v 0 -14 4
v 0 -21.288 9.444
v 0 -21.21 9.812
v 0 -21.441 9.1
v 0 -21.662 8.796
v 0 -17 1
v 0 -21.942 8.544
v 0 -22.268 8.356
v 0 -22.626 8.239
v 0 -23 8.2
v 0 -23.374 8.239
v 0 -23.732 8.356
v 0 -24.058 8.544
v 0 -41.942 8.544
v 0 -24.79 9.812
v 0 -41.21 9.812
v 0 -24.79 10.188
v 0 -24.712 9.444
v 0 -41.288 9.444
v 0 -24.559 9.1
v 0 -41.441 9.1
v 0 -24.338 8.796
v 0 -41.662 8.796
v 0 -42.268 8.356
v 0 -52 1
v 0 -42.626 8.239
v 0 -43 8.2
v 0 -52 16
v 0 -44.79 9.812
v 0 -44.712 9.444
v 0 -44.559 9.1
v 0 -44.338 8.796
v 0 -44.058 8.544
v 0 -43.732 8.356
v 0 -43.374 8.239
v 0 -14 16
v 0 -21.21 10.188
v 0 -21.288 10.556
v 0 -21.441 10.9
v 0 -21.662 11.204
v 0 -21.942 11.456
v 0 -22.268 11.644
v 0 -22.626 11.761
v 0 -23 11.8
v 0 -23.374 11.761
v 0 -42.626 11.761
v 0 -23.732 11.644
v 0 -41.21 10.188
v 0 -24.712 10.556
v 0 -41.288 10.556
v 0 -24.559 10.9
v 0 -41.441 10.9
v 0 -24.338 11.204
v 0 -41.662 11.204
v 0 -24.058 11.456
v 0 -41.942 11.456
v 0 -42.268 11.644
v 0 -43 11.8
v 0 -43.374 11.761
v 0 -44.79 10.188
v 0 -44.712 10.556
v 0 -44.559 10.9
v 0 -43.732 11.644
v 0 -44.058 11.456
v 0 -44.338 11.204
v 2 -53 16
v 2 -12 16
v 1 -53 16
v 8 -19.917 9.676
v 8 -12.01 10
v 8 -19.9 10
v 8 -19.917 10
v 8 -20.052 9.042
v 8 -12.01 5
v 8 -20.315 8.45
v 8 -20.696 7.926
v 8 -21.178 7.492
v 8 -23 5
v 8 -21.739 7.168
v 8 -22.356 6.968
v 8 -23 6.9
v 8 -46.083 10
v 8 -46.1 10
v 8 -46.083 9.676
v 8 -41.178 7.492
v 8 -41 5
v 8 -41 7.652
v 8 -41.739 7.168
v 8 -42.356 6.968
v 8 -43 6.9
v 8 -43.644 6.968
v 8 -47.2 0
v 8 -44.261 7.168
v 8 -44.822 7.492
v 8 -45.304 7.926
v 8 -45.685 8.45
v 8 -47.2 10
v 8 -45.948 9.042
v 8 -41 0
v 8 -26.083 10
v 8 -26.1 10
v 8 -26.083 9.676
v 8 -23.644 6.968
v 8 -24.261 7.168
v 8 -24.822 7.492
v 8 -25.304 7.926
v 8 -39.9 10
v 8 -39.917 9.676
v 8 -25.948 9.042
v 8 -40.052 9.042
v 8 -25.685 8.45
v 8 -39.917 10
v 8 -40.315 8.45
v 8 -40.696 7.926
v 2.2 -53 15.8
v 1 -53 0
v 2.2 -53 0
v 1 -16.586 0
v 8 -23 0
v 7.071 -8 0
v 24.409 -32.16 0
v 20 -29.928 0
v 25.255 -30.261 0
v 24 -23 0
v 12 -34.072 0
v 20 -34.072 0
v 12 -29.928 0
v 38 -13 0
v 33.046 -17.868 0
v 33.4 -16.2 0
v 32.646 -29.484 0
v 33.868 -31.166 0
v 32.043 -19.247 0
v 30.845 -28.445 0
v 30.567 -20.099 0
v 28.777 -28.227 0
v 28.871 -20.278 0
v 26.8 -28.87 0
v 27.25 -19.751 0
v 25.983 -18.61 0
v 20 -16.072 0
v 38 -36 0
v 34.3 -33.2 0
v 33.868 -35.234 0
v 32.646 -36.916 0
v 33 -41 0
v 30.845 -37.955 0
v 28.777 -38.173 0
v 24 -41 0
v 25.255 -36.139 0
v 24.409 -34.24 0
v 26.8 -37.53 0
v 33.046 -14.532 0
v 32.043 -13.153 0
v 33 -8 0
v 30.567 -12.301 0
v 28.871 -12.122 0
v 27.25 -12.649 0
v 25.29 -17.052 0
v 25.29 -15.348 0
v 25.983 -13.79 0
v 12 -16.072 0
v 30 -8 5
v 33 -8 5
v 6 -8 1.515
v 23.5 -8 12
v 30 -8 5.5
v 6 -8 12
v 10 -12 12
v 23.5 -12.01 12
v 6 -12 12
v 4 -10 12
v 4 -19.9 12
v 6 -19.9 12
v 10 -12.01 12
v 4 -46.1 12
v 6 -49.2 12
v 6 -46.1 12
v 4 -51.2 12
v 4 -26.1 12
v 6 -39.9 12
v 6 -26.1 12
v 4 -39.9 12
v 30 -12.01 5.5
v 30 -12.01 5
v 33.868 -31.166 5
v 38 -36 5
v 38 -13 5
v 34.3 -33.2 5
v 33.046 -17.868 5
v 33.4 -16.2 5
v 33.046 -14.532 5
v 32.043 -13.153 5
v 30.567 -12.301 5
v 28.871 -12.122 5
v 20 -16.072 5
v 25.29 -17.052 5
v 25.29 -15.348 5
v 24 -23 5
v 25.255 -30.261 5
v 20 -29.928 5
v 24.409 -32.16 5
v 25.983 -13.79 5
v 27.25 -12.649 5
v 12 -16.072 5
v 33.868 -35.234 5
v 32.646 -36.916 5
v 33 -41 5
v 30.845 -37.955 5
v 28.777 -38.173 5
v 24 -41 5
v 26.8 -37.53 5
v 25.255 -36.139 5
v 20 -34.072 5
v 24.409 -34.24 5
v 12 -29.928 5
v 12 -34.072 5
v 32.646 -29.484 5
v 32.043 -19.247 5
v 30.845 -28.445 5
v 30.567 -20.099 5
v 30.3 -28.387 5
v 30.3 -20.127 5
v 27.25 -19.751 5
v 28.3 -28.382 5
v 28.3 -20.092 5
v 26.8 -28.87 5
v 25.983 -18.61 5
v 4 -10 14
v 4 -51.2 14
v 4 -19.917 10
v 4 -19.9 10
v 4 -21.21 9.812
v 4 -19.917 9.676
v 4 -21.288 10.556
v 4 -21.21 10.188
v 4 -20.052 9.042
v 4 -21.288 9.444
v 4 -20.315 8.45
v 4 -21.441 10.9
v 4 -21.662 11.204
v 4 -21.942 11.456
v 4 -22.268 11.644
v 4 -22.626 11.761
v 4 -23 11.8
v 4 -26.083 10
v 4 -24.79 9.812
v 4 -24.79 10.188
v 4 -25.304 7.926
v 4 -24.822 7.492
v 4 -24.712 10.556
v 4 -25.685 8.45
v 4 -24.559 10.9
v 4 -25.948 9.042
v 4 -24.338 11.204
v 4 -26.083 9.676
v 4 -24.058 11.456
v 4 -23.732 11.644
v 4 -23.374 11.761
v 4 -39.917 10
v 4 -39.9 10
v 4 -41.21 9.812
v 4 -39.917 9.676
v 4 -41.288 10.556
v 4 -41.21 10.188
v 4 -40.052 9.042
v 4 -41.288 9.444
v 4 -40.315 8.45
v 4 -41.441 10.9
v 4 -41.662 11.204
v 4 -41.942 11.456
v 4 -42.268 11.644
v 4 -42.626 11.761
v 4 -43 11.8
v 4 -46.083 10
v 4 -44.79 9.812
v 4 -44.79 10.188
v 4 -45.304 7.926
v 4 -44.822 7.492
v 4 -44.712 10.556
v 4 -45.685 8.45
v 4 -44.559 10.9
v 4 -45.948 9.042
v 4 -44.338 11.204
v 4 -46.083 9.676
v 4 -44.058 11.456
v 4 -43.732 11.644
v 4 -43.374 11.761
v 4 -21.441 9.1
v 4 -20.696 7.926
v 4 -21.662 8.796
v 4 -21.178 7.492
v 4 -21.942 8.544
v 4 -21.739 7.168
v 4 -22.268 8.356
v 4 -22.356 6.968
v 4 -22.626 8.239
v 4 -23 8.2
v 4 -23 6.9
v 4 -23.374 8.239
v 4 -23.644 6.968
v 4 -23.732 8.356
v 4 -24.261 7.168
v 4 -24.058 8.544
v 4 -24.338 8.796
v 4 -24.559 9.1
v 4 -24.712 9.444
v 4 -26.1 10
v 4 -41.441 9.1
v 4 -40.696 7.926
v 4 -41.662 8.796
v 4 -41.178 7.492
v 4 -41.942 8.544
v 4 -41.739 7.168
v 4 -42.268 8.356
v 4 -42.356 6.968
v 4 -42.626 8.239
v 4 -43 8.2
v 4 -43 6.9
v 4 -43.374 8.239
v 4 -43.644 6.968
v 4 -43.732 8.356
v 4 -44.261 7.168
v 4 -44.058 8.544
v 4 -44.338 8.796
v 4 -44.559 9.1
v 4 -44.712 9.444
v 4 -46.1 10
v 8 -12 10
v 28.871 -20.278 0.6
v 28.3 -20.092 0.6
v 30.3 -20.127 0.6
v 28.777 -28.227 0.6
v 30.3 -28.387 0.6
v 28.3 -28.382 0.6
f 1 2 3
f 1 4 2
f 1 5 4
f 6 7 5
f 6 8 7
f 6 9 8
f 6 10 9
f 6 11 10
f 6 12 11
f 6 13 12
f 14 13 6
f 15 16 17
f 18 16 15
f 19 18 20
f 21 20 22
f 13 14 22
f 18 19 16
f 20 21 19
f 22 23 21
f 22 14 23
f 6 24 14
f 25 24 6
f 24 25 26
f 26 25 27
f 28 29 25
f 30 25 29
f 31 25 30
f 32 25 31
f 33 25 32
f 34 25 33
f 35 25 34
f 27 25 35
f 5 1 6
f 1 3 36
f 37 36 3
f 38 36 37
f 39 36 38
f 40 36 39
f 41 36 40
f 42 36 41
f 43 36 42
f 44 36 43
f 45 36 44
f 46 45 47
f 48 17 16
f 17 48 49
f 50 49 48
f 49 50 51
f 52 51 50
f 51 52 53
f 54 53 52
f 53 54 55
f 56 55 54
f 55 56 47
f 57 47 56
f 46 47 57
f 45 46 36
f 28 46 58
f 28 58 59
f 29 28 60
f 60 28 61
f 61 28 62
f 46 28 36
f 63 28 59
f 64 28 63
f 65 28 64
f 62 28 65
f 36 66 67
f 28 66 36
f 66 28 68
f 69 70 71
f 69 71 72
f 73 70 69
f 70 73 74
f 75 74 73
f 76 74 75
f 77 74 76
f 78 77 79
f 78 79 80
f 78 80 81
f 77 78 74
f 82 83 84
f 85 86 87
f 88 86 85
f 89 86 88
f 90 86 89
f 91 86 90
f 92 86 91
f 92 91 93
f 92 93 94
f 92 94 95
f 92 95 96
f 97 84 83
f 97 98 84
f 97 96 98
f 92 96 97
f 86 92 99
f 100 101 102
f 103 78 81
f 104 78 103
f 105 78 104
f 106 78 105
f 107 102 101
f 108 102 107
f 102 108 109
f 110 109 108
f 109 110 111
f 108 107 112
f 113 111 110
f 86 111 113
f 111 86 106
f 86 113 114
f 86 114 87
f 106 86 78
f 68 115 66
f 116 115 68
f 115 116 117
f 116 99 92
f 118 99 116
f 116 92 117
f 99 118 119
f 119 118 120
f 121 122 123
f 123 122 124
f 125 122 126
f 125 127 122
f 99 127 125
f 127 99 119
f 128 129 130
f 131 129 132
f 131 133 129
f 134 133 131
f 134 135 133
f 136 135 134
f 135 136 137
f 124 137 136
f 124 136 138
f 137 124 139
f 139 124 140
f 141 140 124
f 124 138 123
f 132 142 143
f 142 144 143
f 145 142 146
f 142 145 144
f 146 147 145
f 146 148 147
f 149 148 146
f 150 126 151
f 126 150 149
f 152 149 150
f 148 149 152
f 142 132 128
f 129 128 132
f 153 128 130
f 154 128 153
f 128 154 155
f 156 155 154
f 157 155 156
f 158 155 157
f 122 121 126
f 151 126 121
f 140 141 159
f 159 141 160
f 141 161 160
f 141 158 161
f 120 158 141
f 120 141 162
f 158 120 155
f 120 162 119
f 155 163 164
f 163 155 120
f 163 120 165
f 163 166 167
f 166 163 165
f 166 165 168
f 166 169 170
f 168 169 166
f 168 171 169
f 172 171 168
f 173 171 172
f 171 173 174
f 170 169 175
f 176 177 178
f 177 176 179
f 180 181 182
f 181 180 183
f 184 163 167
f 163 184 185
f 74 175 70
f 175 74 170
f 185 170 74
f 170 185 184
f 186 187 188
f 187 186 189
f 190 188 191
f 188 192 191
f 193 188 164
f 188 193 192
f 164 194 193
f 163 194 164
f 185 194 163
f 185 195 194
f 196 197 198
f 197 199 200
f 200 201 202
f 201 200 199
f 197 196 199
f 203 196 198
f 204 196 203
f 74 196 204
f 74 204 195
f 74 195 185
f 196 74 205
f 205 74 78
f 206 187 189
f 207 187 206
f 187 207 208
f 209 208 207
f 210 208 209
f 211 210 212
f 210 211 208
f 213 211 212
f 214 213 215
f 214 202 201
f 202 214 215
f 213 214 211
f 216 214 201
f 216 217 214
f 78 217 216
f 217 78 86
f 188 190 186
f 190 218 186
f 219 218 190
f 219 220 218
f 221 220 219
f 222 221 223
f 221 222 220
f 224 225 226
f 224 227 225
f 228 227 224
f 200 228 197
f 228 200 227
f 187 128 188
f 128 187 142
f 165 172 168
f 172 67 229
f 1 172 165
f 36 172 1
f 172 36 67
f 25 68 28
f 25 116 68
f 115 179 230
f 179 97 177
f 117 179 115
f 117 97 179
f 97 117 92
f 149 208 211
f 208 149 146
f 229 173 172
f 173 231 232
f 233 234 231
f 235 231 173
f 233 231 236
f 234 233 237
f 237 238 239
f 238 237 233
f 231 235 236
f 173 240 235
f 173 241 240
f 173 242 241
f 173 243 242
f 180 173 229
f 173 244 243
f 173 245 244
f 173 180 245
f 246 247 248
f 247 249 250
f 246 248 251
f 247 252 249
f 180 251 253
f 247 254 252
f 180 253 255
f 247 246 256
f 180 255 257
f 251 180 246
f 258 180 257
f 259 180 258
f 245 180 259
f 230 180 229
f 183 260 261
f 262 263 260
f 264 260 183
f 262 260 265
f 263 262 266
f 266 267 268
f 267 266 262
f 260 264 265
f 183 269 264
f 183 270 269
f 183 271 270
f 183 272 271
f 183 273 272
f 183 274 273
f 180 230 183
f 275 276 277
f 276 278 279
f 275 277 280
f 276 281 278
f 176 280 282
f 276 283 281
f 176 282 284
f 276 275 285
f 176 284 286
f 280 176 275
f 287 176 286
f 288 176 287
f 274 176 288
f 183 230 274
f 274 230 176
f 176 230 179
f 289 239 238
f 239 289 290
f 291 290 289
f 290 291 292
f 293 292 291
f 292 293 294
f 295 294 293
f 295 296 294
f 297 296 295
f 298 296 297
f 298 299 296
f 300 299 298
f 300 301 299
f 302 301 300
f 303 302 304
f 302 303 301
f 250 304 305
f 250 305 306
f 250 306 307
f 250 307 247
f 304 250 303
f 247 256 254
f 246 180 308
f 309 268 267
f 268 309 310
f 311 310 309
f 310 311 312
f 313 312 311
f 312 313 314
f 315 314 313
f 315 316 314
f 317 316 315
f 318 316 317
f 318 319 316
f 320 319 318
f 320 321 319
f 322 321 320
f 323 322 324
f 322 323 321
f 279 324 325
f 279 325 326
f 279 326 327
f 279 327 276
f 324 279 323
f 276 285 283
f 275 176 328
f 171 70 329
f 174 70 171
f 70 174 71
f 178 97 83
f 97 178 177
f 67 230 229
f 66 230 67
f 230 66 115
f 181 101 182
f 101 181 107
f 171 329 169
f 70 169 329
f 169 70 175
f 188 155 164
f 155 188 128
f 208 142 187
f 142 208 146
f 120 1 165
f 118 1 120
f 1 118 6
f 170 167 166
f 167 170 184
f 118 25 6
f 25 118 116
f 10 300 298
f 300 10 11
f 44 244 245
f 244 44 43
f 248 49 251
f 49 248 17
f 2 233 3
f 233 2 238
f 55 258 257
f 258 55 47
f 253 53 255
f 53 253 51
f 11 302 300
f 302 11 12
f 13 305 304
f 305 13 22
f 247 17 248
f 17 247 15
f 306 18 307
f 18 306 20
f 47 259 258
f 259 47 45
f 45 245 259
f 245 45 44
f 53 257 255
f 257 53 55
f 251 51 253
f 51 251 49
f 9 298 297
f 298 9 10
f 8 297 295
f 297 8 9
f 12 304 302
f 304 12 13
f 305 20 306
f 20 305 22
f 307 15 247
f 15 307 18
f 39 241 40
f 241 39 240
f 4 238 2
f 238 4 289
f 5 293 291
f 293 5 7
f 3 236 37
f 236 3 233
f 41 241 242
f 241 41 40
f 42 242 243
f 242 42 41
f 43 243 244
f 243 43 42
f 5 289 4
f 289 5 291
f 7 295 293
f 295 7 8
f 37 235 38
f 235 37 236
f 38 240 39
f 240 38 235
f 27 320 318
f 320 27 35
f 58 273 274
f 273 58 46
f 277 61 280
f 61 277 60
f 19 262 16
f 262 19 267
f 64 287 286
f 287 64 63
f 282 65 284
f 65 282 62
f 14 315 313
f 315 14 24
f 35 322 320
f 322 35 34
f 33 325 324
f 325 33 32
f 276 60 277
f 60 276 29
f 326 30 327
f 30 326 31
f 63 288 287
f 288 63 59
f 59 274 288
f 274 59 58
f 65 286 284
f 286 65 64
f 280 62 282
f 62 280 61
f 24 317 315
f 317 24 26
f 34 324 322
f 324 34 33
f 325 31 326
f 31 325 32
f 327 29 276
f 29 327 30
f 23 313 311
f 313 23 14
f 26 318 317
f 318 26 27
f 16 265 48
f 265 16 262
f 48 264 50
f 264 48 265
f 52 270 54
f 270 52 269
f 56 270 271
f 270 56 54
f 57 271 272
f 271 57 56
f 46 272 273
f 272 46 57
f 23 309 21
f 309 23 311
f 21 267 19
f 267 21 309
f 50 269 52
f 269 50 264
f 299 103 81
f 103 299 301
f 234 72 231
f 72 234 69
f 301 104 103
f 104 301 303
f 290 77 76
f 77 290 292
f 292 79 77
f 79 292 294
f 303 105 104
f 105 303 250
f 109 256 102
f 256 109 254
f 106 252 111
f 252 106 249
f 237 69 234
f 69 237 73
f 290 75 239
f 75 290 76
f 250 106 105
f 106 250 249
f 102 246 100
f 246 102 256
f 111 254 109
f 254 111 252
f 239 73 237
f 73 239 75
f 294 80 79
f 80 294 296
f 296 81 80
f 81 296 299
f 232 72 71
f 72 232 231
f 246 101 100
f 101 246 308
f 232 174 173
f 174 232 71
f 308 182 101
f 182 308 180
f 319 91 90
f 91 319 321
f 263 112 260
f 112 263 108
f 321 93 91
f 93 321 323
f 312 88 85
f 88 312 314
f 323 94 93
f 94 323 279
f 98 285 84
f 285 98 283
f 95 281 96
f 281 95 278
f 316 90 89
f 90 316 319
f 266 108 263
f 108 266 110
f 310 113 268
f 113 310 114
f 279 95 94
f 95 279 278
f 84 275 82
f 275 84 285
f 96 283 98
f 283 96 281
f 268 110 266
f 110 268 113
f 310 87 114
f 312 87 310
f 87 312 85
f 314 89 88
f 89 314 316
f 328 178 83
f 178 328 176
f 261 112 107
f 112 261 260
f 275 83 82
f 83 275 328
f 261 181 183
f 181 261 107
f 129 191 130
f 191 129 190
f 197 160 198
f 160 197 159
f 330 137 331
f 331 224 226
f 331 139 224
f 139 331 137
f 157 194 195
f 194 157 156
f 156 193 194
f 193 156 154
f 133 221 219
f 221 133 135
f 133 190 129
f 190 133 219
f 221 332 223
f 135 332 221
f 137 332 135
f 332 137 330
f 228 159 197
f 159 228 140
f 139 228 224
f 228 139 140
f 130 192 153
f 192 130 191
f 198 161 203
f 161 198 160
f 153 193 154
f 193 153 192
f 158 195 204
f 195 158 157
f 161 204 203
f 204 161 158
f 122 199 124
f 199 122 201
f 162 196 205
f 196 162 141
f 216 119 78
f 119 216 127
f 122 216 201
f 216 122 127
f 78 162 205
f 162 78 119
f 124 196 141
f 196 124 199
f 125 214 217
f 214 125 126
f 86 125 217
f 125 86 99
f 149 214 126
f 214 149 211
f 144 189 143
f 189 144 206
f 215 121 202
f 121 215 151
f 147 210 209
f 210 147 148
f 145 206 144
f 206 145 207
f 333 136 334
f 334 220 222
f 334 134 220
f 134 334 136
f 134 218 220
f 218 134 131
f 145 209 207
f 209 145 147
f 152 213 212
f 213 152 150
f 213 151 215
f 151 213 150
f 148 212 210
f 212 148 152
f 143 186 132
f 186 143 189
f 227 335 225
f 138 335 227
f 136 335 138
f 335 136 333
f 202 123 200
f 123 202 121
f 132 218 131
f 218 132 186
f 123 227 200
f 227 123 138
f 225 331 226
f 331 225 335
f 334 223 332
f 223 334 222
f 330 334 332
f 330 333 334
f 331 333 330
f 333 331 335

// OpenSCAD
//Original Prusa

// PRUSA iteration3
// Z axis top holder
// GNU GPL v3
// Josef Průša <iam@josefprusa.cz> and contributors
// http://www.reprap.org/wiki/Prusa_Mendel
// http://prusamendel.org


module z_top_base(){
 translate([0,-5,0]) cube([8,45,16]); // plate touching the base
 translate([0,-5,0]) cube([30,4.01,12]); // plate touching the base
 translate([0,-5,0]) cube([38,45,5]); // plate touching the base   
}

module z_top_fancy(){
 // Corner cutouts
 translate([0.5,0.5,0])         rotate([0,0,-45-180]) translate([-15,0,-1]) cube([30,30,51]);    
 translate([0.5,40-0.5,0])      rotate([0,0,-45+90])  translate([-15,0,-1]) cube([30,30,51]);  
 
    
 translate([-13,40+5+10.2,0])   rotate([0,0,-45-0])   translate([0,0,-1])   cube([30,30,51]); // frame side angle
 translate([8,28,0]) translate([0,0,-1]) cube([50,50,51]);       

 translate([4,0,12]) rotate([0,0, 0])    translate([0,-5,0]) cube([30,50,30]);          
 translate([6,0,12]) rotate([0,-45, 0])  translate([0,-5,0]) cube([30,50,30]);
 translate([8,4,10]) rotate([0,-45, 0])  translate([0,-5,0]) cube([30,50,30]);

 translate([38-2.5,-5+2.5,0])   rotate([0,0,-45-90]) translate([-15,0,-1]) cube([30,30,51]);         
 translate([35,26,0])           rotate([0,0,-45])    translate([-15,0,-1]) cube([30,30,51]); // outer corner
 translate([0,0,5])             rotate([45+180,0,0]) rotate([0,0,-45+90])  translate([0,0,-15]) cube([30,30,30]);

 // Stiffner cut out
 translate([30,0,5.5]) rotate([0,-45,0]) translate([0,-5,0]) cube([30,50,30]);
 //easy cleanup fix
 translate([0.5,0,0.5]) rotate([0,45,0]) translate([-2.5,0,-5]) cube([5,40,5]);
}

module z_top_holes(){
     // Screw holes frame
     translate([-1,10,10])      rotate([0,90,0]) cylinder(h = 20, r=1.8, $fn=30);
     translate([-1,10+20,10])   rotate([0,90,0]) cylinder(h = 20, r=1.8, $fn=30);
    

    // Screw heads
    translate([4,10,10]) rotate([0,90,0]) cylinder(h = 20, r=3.1, $fn=30);
    translate([4,10-3.1,10]) cube([10,6.2,10]);
    translate([4,10+20,10])  rotate([0,90,0]) cylinder(h = 20, r=3.1, $fn=30);
    translate([4,10+20-3.1,10]) cube([10,6.2,10]);

    // Z rod holder
    translate([25+4.3,3.2,-1]) rotate([0,0,0]) cylinder(h = 50, r=4.1, $fn=15);

    
    
    // odlehceni A
    translate([16,10,-1]) rotate([0,0,0]) cylinder(h = 50, r=8, $fn=6); // odlehceni
    translate([16,28,-1]) rotate([0,0,0]) cylinder(h = 50, r=8, $fn=6); // odlehceni
    
    translate([25+4.3,3.2+17,-1]) rotate([0,0,0]) cylinder(h = 50, r=5, $fn=15); // screw hole

    translate([25+4.3-1,3,0.6]) cube([2,15,7]); // it's bit up because it helps with printing
 
}

module z_top_right(){
    difference(){
        z_top_base();
        z_top_fancy();
        z_top_holes();
    }
}

module z_top_left(){
    translate([0,-13,0]) mirror([0,1,0]) 
    difference(){
        z_top_base();
        z_top_fancy();
        z_top_holes();
    }
}

// Final part
z_top_left();
//z_top_right();
